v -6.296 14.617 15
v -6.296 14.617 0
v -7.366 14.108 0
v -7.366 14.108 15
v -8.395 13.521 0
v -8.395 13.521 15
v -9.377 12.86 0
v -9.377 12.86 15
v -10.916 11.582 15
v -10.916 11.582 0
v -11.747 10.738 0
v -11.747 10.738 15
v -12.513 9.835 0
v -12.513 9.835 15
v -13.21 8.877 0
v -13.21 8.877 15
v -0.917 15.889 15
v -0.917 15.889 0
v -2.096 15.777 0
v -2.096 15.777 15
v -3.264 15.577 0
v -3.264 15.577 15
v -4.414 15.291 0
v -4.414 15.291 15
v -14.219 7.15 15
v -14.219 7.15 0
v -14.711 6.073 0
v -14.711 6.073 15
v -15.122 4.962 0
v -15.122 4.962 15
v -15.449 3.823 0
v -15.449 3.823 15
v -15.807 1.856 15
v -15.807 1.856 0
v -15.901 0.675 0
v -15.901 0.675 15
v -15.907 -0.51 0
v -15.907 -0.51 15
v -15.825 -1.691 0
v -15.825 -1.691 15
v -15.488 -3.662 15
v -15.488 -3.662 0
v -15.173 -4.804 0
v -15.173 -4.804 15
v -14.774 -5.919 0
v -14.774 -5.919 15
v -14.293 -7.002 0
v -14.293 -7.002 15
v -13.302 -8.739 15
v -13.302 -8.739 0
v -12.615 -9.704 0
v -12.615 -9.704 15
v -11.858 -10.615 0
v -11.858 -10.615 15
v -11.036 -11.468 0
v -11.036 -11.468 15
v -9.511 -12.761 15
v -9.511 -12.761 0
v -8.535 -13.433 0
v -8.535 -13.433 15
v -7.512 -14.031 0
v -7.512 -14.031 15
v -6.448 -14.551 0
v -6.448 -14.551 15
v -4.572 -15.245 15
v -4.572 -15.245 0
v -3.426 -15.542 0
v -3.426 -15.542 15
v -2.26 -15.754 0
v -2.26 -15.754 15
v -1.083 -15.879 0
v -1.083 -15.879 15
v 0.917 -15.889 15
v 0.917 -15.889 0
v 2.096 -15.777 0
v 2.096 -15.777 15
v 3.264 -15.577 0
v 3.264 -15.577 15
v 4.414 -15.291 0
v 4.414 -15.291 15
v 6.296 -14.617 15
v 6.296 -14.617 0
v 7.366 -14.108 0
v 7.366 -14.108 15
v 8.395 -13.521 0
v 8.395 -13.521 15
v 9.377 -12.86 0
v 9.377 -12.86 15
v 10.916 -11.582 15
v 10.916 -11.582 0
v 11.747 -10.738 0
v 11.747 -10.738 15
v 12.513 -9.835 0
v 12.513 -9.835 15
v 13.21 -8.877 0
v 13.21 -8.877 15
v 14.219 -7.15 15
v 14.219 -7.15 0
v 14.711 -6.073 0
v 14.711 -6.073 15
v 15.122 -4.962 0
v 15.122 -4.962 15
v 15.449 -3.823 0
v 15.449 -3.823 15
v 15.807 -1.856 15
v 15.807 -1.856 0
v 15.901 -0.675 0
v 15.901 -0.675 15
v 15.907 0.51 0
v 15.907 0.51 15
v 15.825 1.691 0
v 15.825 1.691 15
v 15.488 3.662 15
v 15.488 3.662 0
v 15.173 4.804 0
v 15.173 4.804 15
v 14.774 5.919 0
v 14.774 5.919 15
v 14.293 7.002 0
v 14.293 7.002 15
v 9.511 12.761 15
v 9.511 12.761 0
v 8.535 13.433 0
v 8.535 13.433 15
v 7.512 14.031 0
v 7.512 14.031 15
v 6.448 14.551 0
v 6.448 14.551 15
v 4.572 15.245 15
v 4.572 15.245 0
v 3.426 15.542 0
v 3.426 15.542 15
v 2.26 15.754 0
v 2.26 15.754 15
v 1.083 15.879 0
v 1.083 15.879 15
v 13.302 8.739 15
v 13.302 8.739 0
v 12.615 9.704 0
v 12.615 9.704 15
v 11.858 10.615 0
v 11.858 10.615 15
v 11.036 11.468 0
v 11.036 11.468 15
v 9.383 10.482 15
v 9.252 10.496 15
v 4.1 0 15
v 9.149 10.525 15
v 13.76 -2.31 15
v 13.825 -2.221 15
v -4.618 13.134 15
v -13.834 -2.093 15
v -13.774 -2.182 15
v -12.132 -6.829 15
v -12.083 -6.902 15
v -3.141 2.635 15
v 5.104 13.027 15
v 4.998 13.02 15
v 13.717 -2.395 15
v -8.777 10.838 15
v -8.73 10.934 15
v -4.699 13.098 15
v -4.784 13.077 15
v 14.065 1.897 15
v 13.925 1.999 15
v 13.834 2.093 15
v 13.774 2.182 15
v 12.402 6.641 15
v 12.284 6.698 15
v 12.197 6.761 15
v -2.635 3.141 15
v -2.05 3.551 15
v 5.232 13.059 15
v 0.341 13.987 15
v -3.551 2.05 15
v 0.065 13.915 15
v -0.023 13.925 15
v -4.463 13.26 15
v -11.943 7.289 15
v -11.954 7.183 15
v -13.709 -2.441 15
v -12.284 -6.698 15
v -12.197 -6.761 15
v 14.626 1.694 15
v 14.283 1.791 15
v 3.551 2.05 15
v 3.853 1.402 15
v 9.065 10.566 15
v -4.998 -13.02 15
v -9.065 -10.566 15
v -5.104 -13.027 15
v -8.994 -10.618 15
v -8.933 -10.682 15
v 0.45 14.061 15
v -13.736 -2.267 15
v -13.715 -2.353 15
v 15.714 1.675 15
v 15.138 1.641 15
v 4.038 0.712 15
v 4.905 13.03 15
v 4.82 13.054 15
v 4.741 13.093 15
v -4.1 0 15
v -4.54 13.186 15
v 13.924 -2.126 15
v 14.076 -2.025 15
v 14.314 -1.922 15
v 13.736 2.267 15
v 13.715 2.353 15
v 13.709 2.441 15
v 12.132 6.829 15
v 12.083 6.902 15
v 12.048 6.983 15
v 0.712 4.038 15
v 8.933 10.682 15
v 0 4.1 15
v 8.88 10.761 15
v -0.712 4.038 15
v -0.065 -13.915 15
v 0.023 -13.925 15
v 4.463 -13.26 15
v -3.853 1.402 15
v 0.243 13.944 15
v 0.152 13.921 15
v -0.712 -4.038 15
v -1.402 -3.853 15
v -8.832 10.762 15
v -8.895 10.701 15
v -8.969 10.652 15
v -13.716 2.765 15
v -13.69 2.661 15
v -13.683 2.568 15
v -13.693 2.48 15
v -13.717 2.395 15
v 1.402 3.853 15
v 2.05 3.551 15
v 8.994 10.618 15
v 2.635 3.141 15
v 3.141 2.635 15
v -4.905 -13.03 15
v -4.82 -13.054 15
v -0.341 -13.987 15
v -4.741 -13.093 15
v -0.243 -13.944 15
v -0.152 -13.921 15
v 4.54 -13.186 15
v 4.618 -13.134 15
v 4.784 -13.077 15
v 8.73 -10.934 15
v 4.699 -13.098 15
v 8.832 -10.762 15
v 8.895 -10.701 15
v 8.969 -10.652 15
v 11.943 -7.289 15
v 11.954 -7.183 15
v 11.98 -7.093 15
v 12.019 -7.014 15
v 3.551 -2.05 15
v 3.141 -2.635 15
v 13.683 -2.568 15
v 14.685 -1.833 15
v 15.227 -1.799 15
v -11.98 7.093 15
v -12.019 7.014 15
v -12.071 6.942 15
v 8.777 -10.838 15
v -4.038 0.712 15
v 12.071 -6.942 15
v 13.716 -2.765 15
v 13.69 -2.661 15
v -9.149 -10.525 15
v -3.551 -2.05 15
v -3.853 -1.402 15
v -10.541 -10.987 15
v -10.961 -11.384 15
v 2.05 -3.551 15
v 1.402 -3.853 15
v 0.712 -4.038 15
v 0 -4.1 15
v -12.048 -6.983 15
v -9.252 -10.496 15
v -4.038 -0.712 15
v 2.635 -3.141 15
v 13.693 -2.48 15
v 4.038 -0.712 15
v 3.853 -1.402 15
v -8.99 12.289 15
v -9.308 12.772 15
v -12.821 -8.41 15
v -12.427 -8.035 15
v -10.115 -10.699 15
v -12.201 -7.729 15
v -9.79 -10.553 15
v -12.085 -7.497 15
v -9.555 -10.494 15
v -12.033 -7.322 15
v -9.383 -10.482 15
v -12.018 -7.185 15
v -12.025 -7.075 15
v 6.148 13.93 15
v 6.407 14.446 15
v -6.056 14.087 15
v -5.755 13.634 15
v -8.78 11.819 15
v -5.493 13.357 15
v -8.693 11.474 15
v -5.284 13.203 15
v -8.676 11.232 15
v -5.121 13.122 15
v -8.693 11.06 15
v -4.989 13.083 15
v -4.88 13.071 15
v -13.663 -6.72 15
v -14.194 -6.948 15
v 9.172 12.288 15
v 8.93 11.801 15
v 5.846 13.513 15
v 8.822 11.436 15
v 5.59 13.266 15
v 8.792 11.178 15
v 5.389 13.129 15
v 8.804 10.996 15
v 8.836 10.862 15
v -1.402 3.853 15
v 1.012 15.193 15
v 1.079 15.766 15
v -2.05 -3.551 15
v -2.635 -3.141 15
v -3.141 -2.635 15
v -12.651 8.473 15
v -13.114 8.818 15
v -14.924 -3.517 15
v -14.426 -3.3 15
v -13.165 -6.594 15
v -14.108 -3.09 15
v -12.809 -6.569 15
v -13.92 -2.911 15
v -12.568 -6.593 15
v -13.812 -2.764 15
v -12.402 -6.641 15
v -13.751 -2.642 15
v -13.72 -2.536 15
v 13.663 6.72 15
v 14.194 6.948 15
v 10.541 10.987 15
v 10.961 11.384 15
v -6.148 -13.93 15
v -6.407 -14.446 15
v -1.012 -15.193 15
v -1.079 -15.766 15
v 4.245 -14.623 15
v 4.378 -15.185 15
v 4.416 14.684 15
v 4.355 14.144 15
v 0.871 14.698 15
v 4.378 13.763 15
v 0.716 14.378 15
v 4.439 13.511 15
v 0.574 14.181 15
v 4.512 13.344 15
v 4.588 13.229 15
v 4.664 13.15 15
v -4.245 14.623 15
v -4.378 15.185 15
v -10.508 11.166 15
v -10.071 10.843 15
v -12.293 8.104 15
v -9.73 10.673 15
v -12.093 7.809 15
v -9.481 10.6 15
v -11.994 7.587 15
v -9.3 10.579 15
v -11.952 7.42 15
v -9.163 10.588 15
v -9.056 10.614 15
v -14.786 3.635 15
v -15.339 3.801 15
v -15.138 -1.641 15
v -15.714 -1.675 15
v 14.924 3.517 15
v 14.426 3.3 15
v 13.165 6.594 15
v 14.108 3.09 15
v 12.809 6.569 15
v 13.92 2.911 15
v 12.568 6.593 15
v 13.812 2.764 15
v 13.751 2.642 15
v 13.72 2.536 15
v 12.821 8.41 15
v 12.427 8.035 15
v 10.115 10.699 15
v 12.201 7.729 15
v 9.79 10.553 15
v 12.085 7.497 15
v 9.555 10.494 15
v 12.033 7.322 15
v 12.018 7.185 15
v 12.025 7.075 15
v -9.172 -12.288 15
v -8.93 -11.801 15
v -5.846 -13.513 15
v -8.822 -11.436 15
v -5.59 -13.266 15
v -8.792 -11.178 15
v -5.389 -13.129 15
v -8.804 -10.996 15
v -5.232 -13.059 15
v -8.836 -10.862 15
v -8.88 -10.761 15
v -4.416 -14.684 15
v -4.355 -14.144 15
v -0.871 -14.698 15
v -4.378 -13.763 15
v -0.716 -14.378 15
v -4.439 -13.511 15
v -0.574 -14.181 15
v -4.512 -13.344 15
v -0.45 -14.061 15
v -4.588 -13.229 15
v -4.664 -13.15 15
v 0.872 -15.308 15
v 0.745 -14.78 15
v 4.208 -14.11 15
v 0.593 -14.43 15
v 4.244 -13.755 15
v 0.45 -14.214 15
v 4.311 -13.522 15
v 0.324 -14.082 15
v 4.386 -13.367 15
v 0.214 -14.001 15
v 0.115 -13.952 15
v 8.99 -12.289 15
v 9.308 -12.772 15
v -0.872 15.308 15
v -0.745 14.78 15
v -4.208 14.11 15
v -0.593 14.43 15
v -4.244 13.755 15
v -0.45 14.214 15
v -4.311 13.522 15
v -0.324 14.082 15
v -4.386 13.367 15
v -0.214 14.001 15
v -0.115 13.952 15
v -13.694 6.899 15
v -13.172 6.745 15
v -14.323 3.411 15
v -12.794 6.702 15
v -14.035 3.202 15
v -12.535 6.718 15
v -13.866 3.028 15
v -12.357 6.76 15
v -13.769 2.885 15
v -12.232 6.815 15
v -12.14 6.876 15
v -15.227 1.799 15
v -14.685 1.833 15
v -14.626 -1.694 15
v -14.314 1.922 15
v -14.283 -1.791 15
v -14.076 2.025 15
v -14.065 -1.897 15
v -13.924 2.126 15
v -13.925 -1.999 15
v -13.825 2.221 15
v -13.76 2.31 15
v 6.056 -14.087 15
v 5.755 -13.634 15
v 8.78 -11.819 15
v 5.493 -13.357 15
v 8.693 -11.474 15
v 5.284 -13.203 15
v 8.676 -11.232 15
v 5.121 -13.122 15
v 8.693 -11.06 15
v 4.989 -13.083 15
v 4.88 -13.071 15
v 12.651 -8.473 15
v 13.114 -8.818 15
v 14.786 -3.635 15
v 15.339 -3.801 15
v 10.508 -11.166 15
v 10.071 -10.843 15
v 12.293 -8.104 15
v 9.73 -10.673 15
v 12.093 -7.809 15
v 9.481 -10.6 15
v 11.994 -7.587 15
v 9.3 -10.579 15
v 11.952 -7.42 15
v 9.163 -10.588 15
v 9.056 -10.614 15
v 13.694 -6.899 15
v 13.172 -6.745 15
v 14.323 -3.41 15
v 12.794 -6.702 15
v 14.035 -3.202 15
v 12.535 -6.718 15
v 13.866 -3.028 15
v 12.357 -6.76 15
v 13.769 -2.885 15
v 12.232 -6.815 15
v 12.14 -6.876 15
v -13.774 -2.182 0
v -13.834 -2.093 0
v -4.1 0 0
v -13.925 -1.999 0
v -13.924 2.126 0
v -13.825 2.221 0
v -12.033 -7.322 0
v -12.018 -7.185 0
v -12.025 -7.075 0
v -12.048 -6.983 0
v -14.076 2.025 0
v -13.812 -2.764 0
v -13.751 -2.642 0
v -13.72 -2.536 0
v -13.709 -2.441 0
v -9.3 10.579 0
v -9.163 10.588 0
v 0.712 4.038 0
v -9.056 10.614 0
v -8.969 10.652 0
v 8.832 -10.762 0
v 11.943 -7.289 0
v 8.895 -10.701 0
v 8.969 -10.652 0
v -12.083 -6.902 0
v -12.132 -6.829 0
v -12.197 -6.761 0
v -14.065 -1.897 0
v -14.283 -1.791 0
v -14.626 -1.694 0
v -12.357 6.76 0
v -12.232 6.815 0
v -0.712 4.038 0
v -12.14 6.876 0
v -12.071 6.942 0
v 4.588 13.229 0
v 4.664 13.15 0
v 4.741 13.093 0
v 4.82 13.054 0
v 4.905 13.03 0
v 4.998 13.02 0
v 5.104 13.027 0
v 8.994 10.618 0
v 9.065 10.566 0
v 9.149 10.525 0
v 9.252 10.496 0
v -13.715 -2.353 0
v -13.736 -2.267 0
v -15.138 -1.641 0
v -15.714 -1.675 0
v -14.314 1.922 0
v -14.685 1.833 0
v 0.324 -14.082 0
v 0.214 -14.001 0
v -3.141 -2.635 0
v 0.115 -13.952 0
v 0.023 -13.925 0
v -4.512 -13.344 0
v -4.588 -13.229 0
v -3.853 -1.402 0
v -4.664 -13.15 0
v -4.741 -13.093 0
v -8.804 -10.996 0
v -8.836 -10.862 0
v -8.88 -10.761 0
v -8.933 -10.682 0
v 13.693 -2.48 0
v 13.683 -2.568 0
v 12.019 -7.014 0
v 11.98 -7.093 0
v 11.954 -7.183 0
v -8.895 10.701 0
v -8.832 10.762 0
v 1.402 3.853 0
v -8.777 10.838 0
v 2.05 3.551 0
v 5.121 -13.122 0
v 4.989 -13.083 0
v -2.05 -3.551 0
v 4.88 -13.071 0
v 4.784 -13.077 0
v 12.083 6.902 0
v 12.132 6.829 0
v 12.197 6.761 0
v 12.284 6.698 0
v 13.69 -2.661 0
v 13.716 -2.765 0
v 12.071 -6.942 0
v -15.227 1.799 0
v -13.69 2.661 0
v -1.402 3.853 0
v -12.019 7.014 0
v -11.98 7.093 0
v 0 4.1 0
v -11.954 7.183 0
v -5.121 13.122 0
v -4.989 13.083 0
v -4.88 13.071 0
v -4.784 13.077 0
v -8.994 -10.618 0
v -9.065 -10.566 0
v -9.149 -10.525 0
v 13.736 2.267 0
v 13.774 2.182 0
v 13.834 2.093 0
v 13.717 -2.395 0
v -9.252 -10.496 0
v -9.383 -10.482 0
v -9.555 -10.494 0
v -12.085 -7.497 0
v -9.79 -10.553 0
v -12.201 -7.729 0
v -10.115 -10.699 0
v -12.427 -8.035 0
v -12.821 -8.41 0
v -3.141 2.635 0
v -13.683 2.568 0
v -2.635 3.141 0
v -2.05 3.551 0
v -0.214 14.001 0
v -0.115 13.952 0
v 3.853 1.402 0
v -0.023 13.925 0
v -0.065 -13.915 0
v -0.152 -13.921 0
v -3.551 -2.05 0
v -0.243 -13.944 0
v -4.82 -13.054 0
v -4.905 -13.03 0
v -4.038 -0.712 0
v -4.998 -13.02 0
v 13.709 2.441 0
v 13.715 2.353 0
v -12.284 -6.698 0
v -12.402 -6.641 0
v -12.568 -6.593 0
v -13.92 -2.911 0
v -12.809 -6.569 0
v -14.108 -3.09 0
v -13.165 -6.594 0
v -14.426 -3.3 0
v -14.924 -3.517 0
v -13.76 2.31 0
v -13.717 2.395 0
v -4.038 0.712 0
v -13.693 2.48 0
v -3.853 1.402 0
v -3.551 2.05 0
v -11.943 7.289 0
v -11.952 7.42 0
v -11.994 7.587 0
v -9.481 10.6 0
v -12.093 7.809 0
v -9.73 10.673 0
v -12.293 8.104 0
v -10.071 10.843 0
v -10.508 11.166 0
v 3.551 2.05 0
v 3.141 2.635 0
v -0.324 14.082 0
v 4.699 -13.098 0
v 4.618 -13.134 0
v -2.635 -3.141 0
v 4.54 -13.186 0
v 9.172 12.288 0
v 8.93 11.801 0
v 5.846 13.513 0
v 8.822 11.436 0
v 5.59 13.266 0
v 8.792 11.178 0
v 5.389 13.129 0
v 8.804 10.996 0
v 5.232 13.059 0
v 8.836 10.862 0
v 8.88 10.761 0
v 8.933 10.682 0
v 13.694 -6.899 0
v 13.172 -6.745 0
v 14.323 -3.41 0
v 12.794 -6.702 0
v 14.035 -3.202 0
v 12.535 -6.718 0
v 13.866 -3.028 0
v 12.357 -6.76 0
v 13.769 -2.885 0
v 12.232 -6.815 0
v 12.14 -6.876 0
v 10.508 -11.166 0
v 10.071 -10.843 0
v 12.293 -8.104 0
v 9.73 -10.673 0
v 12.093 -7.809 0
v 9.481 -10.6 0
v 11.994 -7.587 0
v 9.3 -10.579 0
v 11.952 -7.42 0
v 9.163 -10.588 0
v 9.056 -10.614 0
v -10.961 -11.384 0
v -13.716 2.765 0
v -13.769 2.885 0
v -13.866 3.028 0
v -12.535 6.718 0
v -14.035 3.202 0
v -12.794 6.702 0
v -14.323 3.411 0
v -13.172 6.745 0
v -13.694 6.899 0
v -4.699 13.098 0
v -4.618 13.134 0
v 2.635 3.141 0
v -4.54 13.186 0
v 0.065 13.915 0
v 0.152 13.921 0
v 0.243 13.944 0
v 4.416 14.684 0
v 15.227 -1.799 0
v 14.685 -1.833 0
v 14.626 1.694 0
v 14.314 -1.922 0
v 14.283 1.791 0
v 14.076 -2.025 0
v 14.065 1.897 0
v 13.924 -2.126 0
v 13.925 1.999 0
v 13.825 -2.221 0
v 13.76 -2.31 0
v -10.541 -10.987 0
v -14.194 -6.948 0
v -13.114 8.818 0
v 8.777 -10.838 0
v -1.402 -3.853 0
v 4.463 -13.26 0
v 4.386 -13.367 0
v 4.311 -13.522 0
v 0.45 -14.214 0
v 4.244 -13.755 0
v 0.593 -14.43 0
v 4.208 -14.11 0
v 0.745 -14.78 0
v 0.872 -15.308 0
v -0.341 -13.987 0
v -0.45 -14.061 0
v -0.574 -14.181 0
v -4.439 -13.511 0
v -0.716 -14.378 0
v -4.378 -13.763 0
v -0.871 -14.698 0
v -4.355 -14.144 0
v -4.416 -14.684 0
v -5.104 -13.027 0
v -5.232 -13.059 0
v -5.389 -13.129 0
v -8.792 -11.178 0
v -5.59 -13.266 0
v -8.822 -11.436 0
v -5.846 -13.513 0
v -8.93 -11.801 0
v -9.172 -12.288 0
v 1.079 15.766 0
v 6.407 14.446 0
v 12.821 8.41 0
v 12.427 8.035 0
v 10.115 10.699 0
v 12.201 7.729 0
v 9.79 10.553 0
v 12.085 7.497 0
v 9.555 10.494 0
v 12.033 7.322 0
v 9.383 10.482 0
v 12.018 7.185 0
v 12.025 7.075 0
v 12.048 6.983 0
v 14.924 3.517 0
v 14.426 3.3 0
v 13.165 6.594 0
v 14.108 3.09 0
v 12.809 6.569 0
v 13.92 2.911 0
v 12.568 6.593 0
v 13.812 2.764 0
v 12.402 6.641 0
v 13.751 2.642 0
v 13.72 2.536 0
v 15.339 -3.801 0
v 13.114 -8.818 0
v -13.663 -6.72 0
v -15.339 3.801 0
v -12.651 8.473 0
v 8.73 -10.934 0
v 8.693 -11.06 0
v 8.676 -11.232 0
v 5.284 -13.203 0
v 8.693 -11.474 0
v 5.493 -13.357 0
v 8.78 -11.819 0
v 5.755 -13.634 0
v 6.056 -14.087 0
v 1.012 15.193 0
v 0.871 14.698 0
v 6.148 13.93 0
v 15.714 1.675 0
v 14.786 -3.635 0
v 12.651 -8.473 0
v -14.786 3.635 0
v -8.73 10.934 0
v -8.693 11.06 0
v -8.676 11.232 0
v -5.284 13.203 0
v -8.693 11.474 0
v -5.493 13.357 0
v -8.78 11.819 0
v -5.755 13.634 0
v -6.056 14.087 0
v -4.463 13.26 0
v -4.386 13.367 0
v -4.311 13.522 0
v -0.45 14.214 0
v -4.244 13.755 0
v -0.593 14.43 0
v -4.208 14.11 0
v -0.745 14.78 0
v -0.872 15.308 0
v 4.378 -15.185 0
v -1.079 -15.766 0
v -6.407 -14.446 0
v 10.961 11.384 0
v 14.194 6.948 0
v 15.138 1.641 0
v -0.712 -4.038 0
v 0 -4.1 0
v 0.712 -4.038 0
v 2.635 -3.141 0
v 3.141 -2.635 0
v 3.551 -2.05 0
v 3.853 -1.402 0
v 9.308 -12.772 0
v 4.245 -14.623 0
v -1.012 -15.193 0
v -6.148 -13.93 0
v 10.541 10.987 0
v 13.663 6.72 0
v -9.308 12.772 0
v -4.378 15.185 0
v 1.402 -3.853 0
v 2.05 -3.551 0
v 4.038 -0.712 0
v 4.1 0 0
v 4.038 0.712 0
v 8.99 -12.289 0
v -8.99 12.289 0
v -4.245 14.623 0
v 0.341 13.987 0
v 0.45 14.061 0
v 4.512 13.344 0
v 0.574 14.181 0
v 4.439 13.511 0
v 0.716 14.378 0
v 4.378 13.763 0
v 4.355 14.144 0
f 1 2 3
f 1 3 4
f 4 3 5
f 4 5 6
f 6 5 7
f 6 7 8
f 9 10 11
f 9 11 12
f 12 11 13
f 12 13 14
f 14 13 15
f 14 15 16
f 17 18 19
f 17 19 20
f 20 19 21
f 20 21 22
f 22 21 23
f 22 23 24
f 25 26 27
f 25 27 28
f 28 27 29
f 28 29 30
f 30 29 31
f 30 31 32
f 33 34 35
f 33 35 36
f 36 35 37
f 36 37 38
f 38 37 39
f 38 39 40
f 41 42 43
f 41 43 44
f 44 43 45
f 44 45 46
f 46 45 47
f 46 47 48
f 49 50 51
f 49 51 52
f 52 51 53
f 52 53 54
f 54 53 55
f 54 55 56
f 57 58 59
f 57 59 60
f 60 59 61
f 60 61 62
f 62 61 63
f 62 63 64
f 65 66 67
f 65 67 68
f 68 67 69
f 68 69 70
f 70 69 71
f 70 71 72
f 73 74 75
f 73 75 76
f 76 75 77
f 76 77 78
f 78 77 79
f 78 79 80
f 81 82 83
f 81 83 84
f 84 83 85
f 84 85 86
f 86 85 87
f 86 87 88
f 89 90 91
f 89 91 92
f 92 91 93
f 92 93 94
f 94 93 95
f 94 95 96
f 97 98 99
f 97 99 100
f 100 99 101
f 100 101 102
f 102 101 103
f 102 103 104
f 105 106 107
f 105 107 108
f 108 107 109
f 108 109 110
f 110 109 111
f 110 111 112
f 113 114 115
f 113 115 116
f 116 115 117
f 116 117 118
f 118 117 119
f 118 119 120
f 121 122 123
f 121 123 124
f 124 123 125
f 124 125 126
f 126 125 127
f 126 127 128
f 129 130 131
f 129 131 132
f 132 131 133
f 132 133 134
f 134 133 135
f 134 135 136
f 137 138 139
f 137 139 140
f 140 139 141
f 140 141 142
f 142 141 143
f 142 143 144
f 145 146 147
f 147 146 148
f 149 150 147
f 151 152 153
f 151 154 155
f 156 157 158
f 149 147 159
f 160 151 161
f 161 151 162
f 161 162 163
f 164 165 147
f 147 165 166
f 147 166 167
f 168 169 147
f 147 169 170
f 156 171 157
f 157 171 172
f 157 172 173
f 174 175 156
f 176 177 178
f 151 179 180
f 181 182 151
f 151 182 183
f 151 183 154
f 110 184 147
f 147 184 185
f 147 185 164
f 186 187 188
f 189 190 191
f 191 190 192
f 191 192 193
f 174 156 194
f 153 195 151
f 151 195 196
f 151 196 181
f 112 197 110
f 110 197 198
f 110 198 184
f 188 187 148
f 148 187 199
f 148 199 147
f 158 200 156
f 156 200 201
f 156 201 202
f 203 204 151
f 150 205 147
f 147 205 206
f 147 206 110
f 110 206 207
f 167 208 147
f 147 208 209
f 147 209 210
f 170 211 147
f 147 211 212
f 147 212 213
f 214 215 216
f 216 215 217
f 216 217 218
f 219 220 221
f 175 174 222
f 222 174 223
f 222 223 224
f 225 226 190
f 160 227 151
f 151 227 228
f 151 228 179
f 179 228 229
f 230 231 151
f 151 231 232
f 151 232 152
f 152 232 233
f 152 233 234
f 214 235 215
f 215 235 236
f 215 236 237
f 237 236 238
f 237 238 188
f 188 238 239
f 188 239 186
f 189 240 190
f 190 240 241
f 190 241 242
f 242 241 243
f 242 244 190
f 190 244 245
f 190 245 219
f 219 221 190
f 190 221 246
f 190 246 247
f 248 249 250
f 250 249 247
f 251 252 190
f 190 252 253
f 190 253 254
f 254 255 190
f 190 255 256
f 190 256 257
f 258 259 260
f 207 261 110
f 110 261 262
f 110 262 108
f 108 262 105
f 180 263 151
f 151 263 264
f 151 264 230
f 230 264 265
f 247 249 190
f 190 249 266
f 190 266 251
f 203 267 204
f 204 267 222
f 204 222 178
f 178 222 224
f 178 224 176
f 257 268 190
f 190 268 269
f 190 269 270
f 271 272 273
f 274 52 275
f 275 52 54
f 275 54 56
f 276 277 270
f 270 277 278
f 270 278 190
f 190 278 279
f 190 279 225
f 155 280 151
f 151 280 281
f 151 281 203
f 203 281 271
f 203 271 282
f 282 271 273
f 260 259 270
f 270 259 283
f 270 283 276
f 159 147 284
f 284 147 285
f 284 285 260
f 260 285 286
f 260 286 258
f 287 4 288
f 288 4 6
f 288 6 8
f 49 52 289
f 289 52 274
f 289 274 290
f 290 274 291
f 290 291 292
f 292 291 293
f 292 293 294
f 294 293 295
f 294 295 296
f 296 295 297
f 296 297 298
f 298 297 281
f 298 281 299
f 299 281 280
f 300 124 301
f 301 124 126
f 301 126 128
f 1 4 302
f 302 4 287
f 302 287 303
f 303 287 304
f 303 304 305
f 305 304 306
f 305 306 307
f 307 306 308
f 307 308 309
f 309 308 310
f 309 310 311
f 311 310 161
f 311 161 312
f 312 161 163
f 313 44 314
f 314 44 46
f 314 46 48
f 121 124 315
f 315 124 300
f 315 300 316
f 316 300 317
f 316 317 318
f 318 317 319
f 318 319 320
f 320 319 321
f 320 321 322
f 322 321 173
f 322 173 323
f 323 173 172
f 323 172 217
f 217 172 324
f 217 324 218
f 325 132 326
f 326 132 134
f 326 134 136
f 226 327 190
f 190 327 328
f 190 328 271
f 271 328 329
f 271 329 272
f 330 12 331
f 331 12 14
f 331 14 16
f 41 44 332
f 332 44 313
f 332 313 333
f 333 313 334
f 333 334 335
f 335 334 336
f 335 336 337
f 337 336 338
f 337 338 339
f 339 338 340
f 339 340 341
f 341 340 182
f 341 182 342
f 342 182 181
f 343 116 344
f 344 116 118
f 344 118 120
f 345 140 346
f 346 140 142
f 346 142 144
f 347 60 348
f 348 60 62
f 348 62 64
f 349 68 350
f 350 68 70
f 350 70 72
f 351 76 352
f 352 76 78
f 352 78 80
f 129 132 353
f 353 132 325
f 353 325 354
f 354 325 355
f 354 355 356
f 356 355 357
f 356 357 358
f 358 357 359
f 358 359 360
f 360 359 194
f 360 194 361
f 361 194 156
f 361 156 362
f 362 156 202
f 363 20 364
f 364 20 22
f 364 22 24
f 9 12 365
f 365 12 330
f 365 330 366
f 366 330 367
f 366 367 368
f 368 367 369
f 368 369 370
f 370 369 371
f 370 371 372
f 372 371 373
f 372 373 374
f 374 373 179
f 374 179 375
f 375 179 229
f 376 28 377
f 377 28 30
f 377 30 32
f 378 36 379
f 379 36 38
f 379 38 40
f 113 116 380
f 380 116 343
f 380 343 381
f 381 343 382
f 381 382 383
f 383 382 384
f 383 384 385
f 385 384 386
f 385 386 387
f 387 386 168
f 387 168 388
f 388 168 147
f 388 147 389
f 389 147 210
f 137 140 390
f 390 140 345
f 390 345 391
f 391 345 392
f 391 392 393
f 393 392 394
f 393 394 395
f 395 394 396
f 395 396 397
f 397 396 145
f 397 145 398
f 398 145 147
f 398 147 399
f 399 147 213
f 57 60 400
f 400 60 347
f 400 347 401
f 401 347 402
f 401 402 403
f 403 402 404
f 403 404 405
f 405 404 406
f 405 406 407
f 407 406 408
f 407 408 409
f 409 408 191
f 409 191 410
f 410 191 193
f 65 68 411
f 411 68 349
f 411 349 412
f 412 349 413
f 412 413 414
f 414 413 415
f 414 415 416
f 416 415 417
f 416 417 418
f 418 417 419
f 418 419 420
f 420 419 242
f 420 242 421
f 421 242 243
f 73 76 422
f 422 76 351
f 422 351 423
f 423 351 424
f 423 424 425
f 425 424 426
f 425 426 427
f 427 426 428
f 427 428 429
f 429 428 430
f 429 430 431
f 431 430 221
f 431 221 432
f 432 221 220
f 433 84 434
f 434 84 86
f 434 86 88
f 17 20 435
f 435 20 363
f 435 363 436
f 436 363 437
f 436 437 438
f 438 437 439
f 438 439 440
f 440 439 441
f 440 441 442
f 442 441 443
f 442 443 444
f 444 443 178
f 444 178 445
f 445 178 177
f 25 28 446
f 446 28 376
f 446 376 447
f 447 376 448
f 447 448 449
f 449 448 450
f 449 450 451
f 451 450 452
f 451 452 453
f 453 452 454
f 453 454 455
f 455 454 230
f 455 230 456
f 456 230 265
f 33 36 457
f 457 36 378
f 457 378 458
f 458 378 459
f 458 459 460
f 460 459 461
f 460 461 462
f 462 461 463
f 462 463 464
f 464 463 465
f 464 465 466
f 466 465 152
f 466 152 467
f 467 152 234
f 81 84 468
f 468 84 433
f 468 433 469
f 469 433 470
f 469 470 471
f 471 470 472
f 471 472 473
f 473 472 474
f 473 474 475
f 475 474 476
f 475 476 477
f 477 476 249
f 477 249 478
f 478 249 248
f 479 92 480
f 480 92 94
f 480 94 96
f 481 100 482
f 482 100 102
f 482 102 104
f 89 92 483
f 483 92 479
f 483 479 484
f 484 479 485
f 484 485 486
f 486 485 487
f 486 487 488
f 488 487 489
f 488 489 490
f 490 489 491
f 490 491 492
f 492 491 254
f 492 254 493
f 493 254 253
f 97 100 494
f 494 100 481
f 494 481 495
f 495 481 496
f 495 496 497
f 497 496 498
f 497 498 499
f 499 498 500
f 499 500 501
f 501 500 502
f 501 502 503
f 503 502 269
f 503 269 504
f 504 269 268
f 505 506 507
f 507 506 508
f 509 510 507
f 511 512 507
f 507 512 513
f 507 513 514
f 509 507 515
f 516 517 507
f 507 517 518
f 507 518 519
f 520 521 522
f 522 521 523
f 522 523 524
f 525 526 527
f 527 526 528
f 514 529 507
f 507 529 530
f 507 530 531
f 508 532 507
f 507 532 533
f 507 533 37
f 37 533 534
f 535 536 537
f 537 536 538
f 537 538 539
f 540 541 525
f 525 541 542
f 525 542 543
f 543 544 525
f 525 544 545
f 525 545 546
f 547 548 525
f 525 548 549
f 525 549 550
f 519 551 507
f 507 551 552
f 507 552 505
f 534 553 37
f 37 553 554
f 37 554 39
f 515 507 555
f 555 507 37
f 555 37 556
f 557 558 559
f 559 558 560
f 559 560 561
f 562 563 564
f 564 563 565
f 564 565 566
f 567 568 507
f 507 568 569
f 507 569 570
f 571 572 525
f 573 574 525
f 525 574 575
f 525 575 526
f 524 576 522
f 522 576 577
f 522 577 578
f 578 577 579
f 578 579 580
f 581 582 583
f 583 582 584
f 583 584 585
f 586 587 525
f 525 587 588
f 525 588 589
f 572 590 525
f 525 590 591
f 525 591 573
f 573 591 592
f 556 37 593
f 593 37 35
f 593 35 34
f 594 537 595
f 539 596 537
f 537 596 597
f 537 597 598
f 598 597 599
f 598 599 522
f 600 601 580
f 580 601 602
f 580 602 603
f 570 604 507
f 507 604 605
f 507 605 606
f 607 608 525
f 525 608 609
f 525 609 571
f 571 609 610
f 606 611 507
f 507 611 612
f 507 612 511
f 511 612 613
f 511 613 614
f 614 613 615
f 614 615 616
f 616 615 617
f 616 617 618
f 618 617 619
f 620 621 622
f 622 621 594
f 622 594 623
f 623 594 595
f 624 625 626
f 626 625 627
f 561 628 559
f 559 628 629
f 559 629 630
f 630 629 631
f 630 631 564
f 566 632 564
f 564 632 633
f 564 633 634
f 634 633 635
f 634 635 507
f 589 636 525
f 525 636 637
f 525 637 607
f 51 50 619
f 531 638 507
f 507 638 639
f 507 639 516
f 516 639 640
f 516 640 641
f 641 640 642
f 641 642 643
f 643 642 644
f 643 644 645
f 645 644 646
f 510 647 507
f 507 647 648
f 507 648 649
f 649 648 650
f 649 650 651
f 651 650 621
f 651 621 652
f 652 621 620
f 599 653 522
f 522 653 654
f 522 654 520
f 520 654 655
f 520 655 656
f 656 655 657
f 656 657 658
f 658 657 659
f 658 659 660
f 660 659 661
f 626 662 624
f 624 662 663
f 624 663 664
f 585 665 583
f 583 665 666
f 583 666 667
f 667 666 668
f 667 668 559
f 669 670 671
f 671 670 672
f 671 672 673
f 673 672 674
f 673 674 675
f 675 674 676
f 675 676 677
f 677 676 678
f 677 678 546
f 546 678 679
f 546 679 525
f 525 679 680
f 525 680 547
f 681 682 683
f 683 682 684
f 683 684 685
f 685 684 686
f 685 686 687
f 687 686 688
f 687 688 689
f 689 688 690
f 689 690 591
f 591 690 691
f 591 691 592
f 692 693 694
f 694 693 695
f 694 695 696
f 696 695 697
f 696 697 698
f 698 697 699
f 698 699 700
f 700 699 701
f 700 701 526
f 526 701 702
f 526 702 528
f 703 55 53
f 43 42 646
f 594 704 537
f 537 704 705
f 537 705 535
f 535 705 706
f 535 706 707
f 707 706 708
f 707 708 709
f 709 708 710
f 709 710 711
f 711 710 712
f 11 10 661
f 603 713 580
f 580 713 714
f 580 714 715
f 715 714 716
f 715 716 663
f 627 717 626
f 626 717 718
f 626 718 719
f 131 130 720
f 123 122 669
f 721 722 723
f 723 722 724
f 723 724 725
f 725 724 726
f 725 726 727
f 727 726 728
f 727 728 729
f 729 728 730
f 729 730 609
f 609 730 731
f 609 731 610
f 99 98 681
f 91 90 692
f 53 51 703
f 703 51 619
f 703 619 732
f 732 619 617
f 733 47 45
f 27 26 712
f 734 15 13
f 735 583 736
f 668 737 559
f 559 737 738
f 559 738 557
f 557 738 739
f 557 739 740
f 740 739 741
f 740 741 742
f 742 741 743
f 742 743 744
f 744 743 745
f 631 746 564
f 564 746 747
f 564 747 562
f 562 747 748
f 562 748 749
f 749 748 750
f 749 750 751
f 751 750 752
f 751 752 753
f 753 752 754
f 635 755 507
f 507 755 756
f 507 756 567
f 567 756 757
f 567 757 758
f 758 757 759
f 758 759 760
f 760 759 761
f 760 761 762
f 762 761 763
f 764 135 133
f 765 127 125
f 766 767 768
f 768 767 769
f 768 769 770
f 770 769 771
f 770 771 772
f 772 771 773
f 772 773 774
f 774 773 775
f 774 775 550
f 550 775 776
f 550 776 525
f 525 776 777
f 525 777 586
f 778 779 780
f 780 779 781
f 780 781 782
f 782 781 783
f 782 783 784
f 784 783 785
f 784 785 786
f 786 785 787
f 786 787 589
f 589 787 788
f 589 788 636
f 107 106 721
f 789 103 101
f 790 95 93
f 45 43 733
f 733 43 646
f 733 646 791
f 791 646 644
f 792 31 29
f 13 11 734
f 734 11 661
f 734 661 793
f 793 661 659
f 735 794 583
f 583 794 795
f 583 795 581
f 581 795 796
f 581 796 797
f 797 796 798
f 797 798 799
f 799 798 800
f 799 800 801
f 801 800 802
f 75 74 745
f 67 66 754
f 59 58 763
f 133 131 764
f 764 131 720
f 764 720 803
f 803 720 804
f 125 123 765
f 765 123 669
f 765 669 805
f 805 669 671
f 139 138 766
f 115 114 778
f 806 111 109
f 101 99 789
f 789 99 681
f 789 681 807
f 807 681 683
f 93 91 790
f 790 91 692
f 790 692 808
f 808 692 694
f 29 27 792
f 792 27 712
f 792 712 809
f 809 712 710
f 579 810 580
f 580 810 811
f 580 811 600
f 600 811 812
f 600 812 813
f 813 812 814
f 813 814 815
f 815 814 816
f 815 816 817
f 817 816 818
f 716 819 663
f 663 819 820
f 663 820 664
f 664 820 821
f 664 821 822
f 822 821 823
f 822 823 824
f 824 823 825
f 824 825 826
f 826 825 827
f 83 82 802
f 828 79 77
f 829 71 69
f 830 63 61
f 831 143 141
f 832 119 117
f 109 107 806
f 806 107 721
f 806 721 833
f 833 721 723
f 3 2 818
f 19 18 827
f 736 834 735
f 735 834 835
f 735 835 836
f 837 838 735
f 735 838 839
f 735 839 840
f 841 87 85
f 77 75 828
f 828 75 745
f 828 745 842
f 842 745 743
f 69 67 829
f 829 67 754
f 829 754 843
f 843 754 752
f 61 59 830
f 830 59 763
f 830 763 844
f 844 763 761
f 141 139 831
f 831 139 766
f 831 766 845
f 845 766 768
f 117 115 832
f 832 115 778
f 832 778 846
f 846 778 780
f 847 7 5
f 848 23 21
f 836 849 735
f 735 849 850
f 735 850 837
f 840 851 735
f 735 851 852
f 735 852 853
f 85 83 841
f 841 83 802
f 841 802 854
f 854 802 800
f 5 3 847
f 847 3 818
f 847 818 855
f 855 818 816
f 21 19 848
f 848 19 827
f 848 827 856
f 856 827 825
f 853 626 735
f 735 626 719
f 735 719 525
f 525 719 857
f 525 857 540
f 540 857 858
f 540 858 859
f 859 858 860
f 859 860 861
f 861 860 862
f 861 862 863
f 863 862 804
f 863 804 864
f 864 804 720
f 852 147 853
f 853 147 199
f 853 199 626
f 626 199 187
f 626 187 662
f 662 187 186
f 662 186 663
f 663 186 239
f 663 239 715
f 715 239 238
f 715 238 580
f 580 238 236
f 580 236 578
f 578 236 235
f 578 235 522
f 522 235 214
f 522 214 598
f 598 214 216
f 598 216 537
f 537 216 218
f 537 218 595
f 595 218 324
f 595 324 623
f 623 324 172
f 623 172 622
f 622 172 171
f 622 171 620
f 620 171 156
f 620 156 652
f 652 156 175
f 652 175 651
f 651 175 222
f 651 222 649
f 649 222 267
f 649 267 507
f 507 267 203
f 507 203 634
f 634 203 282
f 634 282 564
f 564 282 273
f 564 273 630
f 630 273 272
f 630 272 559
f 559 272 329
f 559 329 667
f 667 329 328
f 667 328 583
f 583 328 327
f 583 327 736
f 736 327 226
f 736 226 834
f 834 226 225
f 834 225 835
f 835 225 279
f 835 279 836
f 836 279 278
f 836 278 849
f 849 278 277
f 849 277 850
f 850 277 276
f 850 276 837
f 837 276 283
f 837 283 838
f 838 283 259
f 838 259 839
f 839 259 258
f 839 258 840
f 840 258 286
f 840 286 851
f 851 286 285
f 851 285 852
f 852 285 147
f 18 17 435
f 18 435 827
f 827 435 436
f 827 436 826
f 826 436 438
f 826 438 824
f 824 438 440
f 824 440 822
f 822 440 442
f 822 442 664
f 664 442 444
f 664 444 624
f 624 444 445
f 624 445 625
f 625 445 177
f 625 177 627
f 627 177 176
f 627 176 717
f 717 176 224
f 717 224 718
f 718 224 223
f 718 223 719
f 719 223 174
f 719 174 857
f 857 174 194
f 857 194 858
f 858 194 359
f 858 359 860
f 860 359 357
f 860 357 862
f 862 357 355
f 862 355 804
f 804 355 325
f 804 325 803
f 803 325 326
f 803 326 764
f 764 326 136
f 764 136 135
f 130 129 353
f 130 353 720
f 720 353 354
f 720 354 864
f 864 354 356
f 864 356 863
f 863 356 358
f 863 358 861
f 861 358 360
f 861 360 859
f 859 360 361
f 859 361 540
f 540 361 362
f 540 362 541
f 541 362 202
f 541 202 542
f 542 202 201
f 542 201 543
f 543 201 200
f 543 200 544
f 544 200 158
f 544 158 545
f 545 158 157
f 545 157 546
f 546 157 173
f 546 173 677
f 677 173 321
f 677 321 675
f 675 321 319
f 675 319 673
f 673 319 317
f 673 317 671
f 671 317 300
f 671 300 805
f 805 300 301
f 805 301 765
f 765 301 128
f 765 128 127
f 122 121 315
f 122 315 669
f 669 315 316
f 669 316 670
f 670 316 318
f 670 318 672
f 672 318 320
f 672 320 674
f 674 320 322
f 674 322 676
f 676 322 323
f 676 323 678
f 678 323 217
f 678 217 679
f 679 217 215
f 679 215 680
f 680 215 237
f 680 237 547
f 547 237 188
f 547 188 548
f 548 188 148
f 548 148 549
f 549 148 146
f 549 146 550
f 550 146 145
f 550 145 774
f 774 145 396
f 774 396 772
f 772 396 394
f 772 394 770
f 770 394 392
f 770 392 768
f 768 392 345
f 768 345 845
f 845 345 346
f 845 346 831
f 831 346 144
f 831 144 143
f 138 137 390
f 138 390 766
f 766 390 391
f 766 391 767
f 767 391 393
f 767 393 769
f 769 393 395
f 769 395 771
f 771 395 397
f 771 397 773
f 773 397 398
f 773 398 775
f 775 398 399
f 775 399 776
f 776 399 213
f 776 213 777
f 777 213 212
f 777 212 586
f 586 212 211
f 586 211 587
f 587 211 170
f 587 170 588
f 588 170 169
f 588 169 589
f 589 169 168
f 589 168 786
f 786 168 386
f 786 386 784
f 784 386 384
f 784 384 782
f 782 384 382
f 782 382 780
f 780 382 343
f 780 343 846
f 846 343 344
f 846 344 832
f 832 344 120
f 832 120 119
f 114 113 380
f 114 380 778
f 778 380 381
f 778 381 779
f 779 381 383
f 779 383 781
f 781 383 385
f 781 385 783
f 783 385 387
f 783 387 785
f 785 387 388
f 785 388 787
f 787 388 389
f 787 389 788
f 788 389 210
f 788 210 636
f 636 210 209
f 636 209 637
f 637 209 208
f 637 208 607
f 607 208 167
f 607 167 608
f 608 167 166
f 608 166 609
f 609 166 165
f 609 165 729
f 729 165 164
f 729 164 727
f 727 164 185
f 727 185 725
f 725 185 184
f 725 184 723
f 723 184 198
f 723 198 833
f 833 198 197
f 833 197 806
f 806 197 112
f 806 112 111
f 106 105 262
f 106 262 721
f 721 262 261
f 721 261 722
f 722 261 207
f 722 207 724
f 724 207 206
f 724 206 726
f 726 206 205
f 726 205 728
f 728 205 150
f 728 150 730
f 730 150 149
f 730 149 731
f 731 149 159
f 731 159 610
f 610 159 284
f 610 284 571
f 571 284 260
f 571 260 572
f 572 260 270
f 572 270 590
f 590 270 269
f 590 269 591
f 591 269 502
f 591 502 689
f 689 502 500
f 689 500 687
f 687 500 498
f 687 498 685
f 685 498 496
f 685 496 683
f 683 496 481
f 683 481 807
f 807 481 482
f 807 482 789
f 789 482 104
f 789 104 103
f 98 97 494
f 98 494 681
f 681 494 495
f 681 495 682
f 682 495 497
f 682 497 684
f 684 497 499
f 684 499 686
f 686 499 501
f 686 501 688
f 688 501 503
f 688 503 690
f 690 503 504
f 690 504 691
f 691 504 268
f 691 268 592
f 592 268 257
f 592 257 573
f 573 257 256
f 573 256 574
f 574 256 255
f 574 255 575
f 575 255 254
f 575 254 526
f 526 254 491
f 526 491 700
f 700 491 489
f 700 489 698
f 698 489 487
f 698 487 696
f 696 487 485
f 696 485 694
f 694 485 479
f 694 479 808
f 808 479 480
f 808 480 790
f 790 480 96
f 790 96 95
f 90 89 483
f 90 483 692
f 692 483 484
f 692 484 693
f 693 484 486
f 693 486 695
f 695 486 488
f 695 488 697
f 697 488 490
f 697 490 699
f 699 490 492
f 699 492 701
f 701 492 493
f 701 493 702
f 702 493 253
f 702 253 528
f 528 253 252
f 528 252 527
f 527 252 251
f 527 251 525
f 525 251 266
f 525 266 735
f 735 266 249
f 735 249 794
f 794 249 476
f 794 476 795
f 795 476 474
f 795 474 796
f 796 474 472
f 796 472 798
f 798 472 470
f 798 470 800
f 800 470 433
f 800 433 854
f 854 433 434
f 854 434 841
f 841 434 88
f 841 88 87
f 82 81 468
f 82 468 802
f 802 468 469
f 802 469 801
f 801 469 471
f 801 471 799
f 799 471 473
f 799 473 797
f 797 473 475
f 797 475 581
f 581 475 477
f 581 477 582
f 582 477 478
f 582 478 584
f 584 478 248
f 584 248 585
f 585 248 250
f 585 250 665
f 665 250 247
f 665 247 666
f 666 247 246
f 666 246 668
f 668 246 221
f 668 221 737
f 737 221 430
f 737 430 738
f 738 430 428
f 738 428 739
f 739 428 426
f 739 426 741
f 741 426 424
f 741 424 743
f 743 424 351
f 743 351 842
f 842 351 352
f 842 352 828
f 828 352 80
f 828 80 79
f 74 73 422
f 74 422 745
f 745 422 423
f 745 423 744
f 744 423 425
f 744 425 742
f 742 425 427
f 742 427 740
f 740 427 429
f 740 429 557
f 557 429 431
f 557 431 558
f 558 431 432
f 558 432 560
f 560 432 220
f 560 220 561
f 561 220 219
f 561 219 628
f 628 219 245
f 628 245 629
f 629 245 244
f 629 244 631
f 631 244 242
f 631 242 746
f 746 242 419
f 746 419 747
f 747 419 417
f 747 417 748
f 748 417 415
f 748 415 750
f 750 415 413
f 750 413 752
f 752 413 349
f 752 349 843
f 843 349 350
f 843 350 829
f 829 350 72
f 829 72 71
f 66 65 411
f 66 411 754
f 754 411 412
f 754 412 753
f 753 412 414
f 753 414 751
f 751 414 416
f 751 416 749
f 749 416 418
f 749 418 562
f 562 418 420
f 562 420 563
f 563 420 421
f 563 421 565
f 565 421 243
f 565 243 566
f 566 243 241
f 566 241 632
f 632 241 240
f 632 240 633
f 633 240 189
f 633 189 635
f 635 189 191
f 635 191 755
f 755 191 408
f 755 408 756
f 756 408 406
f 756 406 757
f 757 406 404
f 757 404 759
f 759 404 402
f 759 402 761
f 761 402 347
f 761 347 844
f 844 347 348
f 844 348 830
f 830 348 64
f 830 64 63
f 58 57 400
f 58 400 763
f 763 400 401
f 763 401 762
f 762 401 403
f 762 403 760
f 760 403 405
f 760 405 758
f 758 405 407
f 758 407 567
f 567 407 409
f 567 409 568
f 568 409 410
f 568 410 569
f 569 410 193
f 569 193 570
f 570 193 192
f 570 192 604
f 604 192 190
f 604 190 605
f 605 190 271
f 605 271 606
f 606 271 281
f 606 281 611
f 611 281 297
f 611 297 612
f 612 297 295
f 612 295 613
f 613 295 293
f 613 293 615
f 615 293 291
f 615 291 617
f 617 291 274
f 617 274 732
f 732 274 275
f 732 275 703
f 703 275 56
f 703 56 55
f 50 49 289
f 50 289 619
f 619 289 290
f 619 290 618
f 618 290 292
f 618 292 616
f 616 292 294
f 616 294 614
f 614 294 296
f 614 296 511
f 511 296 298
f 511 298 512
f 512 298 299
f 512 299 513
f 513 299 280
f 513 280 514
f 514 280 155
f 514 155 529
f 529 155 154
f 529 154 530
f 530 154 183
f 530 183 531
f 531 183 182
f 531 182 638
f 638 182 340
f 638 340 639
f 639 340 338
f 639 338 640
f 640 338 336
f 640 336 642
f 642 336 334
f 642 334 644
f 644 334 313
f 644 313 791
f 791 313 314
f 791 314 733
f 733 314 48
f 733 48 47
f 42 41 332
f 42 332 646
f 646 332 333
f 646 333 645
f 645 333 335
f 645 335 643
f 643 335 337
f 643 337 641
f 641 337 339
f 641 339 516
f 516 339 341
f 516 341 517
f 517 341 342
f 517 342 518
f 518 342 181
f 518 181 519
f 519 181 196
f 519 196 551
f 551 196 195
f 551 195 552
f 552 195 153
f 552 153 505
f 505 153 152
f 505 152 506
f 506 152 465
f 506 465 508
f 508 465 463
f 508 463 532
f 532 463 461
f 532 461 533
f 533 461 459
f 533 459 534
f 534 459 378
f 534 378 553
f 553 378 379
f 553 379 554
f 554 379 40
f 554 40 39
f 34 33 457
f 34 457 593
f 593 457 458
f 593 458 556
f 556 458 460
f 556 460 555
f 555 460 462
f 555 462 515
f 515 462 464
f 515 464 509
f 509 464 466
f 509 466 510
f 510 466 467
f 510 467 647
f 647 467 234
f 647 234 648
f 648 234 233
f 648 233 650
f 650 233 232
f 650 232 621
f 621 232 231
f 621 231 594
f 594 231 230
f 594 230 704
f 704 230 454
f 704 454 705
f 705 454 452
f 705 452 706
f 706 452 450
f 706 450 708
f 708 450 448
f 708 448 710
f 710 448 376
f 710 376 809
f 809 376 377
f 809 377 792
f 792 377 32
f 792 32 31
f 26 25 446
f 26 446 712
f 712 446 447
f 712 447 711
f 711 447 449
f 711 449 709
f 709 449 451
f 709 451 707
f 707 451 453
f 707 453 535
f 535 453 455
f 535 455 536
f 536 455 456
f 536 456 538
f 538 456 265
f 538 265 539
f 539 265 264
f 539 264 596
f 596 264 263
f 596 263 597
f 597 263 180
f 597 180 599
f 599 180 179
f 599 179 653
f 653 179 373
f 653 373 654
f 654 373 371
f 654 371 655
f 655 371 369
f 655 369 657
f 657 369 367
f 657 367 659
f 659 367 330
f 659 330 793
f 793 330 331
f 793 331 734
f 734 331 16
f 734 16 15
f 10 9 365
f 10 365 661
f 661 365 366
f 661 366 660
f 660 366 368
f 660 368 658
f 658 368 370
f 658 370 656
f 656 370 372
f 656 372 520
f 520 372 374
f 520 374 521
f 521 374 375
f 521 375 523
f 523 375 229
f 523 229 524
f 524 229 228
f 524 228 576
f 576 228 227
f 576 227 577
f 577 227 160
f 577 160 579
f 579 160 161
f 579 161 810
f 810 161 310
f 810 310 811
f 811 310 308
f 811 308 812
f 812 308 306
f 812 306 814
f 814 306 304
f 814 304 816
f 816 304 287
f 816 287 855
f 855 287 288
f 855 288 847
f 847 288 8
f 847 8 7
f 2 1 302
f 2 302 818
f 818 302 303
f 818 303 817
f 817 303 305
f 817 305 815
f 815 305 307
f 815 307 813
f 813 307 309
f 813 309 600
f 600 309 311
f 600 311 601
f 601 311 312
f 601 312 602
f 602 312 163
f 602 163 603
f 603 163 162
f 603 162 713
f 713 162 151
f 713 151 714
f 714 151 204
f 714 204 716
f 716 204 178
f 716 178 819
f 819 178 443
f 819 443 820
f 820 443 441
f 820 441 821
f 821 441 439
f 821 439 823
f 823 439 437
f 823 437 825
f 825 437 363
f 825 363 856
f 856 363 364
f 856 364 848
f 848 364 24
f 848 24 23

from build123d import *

# Parameters (mm, degrees)
SKETCH_1_R               = 15.91549431
EXTRUDE_1_DEPTH          = 15
SKETCH_2_R               = 4.1
CUT_EXTRUDE_5_DEPTH      = 15
SKETCH_5_RX              = 2
SKETCH_5_RY              = 1
CUT_EXTRUDE_6_DEPTH      = 15
PATTERN_CIRCULAR_2_COUNT = 18


with BuildPart() as part:
    # Эскиз1 → Бобышка-Вытянуть1 (new body)
    with BuildSketch(Plane.XY):
        Circle(SKETCH_1_R)
    extrude(amount=EXTRUDE_1_DEPTH)

    # Эскиз2 → Вырез-Вытянуть5 (cut)
    with BuildSketch(Plane.XY.offset(15)):
        Circle(SKETCH_2_R)
    extrude(amount=-CUT_EXTRUDE_5_DEPTH, mode=Mode.SUBTRACT)

    # Эскиз5 → Вырез-Вытянуть6 (cut)
    with BuildSketch(Plane.XY.offset(15)):
        with Locations(Location((0.082802385, 15.915278914), (0, 0, 89.70191007))):
            Ellipse(SKETCH_5_RX, SKETCH_5_RY)
    cut_extrude_6 = extrude(amount=-CUT_EXTRUDE_6_DEPTH, mode=Mode.SUBTRACT)

    # Круговой массив2: Вырез-Вытянуть6 ×18 about axis
    pattern_circular_2_axis = Axis((0, 0, 0), (0, 0, 1))
    for i in range(1, PATTERN_CIRCULAR_2_COUNT):
        add(cut_extrude_6.rotate(pattern_circular_2_axis, i * 360 / PATTERN_CIRCULAR_2_COUNT), mode=Mode.SUBTRACT)


solid = part.part
